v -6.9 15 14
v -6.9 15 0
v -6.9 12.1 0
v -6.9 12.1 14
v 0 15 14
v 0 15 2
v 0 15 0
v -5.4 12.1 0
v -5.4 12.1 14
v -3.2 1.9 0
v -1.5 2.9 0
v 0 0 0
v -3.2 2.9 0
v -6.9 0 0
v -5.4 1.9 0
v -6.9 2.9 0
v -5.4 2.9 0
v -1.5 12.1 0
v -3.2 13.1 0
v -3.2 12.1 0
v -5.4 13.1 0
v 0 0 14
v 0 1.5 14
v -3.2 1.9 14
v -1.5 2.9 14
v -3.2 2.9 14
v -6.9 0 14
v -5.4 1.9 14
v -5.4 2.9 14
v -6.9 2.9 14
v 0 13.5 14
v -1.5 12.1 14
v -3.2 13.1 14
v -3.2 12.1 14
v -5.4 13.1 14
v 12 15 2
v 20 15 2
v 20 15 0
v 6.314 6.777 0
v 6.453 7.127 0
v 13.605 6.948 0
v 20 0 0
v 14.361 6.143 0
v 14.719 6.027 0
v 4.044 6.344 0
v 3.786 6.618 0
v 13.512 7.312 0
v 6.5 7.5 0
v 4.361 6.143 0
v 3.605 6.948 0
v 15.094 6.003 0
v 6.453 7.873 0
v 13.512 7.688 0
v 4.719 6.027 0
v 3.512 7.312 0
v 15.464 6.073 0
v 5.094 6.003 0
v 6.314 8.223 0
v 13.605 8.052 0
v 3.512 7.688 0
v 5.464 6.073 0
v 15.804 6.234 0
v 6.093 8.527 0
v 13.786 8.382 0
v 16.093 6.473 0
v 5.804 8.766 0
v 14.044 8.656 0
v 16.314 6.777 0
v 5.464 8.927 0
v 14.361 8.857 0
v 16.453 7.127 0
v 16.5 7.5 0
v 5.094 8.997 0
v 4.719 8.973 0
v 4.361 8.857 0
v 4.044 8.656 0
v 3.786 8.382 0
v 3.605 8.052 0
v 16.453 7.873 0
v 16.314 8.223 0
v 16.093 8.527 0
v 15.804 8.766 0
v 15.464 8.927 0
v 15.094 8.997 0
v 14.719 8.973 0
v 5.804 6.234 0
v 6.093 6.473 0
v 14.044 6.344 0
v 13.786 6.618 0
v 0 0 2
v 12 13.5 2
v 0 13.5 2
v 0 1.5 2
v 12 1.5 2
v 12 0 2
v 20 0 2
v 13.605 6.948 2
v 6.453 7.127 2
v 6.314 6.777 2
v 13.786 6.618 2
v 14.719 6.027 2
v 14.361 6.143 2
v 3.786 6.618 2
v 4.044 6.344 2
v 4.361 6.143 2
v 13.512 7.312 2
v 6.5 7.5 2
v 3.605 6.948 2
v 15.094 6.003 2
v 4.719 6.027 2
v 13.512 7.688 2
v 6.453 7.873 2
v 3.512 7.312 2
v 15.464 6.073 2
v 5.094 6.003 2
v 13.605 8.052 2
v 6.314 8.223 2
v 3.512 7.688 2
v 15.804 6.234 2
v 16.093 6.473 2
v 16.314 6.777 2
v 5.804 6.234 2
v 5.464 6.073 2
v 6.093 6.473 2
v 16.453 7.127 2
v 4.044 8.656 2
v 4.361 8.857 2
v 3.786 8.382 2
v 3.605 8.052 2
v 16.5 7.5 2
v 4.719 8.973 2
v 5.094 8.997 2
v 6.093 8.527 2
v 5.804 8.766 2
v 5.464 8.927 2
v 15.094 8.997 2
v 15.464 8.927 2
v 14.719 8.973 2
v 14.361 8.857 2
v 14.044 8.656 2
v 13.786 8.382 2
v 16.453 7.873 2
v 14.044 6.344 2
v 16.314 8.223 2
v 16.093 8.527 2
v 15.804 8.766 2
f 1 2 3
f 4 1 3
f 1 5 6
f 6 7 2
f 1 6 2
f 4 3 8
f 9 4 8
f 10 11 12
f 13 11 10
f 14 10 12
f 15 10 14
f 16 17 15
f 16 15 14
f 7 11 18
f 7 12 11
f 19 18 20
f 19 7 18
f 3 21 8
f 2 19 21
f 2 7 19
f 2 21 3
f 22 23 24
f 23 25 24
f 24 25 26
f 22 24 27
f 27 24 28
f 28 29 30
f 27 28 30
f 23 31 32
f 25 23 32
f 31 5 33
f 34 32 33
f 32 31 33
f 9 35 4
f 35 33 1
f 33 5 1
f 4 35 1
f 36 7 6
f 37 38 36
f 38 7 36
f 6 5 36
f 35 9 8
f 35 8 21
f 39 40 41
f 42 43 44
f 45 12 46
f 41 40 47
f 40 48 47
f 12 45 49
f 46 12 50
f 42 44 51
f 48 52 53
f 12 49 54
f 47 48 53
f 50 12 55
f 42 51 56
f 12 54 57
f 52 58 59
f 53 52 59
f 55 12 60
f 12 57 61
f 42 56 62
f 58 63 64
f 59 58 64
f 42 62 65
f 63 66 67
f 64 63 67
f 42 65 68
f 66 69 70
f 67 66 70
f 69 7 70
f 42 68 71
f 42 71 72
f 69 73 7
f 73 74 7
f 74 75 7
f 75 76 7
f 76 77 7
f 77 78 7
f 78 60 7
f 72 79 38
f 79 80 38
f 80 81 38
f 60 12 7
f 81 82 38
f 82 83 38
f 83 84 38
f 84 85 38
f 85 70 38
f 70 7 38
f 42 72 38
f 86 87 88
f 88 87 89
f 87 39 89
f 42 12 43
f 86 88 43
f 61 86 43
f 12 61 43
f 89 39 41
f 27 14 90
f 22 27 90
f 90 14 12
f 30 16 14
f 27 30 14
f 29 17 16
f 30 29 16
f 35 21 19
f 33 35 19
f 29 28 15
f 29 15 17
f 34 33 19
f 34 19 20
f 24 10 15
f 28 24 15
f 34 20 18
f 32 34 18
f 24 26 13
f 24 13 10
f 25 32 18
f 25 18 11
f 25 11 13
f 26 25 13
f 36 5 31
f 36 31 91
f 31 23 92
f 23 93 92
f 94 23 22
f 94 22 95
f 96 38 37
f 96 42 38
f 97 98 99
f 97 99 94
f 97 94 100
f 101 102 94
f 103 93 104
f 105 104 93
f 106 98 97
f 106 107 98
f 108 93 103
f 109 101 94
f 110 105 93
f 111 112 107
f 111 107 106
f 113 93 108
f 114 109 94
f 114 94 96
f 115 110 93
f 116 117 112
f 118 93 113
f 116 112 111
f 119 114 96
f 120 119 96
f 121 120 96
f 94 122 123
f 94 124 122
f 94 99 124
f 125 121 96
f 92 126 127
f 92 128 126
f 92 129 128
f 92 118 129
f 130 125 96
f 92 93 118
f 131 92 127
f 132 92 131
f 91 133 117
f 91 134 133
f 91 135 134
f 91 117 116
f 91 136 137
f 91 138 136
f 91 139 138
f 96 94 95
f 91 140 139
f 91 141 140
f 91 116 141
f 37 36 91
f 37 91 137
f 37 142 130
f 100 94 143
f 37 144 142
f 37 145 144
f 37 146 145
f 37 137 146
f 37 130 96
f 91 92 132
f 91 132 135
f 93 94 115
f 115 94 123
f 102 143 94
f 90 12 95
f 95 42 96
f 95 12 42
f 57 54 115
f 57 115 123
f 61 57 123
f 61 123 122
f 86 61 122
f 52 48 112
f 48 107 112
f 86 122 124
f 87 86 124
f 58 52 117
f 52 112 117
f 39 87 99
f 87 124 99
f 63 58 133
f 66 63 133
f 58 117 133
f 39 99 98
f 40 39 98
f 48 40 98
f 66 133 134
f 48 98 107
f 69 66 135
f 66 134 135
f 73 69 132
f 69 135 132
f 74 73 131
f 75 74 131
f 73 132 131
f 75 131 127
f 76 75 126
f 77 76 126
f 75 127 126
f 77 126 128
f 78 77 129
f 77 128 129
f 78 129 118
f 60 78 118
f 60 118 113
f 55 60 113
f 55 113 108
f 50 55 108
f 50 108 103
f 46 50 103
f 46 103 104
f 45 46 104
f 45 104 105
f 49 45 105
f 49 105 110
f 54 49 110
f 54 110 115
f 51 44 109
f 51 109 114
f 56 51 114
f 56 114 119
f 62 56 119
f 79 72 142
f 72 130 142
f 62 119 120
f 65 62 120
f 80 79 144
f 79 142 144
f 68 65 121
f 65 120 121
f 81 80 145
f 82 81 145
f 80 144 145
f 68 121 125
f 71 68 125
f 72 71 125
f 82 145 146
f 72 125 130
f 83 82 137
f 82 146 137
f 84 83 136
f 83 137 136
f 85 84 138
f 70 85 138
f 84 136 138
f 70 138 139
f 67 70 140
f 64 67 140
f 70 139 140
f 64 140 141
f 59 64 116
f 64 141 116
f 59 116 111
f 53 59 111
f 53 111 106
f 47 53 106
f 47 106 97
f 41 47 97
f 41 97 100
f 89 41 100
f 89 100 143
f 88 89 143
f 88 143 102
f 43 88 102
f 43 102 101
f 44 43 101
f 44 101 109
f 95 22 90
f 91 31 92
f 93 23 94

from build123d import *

# Parameters (mm, degrees)
CYLINDER001_R     = 1.5
CYLINDER001_DEPTH = 10
CYLINDER_R        = 1.5
CYLINDER_DEPTH    = 10
BOX_W             = 20
BOX_H             = 15
BOX_DEPTH         = 2
PAD_DEPTH         = 14
PAD002_DEPTH      = 1.5
PAD003_DEPTH      = 1.5


with BuildPart() as cylinder001:
    # Cylinder001 → Cylinder001 (new body)
    with BuildSketch(Plane(origin=(15, 7.5, 0), x_dir=(1, 0, 0), z_dir=(0, 0, 1))):
        Circle(CYLINDER001_R)
    extrude(amount=CYLINDER001_DEPTH)


with BuildPart() as cylinder:
    # Cylinder → Cylinder (new body)
    with BuildSketch(Plane(origin=(5, 7.5, 0), x_dir=(1, 0, 0), z_dir=(0, 0, 1))):
        Circle(CYLINDER_R)
    extrude(amount=CYLINDER_DEPTH)


with BuildPart() as cut001:
    # Box → Box (new body)
    with BuildSketch(Plane.XY):
        with Locations((10, 7.5)):
            Rectangle(BOX_W, BOX_H)
    extrude(amount=BOX_DEPTH)

    # Cut: cut Cylinder
    add(cylinder.part, mode=Mode.SUBTRACT)

    # Cut001: cut Cylinder001
    add(cylinder001.part, mode=Mode.SUBTRACT)


with BuildPart() as pad:
    # Sketch → Pad (new body)
    with BuildSketch(Plane.XY):
        Polygon((0, 15), (-6.9, 15), (-6.9, 12.1), (-5.4, 12.1), (-5.4, 13.1), (-3.2, 13.1), (-3.2, 12.1), (-1.5, 12.1), (-1.5, 2.9), (-3.2, 2.9), (-3.2, 1.9), (-5.4, 1.9), (-5.4, 2.9), (-6.9, 2.9), (-6.9, 0), (0, 0), align=None)
    extrude(amount=PAD_DEPTH)


with BuildPart() as pad002:
    # Sketch001 → Pad002 (new body)
    with BuildSketch(Plane.XZ.offset(-15)):
        Polygon((0, 14), (12, 2), (0, 2), align=None)
    extrude(amount=PAD002_DEPTH)


with BuildPart() as fusion:
    # Sketch002 → Pad003 (new body)
    with BuildSketch(Plane.XZ.offset(-1.5)):
        Polygon((0, 14), (12, 2), (0, 2), align=None)
    extrude(amount=PAD003_DEPTH)

    # Fusion: union Cut001, Pad, Pad002
    add(cut001.part)
    add(pad.part)
    add(pad002.part)


solid = fusion.part
